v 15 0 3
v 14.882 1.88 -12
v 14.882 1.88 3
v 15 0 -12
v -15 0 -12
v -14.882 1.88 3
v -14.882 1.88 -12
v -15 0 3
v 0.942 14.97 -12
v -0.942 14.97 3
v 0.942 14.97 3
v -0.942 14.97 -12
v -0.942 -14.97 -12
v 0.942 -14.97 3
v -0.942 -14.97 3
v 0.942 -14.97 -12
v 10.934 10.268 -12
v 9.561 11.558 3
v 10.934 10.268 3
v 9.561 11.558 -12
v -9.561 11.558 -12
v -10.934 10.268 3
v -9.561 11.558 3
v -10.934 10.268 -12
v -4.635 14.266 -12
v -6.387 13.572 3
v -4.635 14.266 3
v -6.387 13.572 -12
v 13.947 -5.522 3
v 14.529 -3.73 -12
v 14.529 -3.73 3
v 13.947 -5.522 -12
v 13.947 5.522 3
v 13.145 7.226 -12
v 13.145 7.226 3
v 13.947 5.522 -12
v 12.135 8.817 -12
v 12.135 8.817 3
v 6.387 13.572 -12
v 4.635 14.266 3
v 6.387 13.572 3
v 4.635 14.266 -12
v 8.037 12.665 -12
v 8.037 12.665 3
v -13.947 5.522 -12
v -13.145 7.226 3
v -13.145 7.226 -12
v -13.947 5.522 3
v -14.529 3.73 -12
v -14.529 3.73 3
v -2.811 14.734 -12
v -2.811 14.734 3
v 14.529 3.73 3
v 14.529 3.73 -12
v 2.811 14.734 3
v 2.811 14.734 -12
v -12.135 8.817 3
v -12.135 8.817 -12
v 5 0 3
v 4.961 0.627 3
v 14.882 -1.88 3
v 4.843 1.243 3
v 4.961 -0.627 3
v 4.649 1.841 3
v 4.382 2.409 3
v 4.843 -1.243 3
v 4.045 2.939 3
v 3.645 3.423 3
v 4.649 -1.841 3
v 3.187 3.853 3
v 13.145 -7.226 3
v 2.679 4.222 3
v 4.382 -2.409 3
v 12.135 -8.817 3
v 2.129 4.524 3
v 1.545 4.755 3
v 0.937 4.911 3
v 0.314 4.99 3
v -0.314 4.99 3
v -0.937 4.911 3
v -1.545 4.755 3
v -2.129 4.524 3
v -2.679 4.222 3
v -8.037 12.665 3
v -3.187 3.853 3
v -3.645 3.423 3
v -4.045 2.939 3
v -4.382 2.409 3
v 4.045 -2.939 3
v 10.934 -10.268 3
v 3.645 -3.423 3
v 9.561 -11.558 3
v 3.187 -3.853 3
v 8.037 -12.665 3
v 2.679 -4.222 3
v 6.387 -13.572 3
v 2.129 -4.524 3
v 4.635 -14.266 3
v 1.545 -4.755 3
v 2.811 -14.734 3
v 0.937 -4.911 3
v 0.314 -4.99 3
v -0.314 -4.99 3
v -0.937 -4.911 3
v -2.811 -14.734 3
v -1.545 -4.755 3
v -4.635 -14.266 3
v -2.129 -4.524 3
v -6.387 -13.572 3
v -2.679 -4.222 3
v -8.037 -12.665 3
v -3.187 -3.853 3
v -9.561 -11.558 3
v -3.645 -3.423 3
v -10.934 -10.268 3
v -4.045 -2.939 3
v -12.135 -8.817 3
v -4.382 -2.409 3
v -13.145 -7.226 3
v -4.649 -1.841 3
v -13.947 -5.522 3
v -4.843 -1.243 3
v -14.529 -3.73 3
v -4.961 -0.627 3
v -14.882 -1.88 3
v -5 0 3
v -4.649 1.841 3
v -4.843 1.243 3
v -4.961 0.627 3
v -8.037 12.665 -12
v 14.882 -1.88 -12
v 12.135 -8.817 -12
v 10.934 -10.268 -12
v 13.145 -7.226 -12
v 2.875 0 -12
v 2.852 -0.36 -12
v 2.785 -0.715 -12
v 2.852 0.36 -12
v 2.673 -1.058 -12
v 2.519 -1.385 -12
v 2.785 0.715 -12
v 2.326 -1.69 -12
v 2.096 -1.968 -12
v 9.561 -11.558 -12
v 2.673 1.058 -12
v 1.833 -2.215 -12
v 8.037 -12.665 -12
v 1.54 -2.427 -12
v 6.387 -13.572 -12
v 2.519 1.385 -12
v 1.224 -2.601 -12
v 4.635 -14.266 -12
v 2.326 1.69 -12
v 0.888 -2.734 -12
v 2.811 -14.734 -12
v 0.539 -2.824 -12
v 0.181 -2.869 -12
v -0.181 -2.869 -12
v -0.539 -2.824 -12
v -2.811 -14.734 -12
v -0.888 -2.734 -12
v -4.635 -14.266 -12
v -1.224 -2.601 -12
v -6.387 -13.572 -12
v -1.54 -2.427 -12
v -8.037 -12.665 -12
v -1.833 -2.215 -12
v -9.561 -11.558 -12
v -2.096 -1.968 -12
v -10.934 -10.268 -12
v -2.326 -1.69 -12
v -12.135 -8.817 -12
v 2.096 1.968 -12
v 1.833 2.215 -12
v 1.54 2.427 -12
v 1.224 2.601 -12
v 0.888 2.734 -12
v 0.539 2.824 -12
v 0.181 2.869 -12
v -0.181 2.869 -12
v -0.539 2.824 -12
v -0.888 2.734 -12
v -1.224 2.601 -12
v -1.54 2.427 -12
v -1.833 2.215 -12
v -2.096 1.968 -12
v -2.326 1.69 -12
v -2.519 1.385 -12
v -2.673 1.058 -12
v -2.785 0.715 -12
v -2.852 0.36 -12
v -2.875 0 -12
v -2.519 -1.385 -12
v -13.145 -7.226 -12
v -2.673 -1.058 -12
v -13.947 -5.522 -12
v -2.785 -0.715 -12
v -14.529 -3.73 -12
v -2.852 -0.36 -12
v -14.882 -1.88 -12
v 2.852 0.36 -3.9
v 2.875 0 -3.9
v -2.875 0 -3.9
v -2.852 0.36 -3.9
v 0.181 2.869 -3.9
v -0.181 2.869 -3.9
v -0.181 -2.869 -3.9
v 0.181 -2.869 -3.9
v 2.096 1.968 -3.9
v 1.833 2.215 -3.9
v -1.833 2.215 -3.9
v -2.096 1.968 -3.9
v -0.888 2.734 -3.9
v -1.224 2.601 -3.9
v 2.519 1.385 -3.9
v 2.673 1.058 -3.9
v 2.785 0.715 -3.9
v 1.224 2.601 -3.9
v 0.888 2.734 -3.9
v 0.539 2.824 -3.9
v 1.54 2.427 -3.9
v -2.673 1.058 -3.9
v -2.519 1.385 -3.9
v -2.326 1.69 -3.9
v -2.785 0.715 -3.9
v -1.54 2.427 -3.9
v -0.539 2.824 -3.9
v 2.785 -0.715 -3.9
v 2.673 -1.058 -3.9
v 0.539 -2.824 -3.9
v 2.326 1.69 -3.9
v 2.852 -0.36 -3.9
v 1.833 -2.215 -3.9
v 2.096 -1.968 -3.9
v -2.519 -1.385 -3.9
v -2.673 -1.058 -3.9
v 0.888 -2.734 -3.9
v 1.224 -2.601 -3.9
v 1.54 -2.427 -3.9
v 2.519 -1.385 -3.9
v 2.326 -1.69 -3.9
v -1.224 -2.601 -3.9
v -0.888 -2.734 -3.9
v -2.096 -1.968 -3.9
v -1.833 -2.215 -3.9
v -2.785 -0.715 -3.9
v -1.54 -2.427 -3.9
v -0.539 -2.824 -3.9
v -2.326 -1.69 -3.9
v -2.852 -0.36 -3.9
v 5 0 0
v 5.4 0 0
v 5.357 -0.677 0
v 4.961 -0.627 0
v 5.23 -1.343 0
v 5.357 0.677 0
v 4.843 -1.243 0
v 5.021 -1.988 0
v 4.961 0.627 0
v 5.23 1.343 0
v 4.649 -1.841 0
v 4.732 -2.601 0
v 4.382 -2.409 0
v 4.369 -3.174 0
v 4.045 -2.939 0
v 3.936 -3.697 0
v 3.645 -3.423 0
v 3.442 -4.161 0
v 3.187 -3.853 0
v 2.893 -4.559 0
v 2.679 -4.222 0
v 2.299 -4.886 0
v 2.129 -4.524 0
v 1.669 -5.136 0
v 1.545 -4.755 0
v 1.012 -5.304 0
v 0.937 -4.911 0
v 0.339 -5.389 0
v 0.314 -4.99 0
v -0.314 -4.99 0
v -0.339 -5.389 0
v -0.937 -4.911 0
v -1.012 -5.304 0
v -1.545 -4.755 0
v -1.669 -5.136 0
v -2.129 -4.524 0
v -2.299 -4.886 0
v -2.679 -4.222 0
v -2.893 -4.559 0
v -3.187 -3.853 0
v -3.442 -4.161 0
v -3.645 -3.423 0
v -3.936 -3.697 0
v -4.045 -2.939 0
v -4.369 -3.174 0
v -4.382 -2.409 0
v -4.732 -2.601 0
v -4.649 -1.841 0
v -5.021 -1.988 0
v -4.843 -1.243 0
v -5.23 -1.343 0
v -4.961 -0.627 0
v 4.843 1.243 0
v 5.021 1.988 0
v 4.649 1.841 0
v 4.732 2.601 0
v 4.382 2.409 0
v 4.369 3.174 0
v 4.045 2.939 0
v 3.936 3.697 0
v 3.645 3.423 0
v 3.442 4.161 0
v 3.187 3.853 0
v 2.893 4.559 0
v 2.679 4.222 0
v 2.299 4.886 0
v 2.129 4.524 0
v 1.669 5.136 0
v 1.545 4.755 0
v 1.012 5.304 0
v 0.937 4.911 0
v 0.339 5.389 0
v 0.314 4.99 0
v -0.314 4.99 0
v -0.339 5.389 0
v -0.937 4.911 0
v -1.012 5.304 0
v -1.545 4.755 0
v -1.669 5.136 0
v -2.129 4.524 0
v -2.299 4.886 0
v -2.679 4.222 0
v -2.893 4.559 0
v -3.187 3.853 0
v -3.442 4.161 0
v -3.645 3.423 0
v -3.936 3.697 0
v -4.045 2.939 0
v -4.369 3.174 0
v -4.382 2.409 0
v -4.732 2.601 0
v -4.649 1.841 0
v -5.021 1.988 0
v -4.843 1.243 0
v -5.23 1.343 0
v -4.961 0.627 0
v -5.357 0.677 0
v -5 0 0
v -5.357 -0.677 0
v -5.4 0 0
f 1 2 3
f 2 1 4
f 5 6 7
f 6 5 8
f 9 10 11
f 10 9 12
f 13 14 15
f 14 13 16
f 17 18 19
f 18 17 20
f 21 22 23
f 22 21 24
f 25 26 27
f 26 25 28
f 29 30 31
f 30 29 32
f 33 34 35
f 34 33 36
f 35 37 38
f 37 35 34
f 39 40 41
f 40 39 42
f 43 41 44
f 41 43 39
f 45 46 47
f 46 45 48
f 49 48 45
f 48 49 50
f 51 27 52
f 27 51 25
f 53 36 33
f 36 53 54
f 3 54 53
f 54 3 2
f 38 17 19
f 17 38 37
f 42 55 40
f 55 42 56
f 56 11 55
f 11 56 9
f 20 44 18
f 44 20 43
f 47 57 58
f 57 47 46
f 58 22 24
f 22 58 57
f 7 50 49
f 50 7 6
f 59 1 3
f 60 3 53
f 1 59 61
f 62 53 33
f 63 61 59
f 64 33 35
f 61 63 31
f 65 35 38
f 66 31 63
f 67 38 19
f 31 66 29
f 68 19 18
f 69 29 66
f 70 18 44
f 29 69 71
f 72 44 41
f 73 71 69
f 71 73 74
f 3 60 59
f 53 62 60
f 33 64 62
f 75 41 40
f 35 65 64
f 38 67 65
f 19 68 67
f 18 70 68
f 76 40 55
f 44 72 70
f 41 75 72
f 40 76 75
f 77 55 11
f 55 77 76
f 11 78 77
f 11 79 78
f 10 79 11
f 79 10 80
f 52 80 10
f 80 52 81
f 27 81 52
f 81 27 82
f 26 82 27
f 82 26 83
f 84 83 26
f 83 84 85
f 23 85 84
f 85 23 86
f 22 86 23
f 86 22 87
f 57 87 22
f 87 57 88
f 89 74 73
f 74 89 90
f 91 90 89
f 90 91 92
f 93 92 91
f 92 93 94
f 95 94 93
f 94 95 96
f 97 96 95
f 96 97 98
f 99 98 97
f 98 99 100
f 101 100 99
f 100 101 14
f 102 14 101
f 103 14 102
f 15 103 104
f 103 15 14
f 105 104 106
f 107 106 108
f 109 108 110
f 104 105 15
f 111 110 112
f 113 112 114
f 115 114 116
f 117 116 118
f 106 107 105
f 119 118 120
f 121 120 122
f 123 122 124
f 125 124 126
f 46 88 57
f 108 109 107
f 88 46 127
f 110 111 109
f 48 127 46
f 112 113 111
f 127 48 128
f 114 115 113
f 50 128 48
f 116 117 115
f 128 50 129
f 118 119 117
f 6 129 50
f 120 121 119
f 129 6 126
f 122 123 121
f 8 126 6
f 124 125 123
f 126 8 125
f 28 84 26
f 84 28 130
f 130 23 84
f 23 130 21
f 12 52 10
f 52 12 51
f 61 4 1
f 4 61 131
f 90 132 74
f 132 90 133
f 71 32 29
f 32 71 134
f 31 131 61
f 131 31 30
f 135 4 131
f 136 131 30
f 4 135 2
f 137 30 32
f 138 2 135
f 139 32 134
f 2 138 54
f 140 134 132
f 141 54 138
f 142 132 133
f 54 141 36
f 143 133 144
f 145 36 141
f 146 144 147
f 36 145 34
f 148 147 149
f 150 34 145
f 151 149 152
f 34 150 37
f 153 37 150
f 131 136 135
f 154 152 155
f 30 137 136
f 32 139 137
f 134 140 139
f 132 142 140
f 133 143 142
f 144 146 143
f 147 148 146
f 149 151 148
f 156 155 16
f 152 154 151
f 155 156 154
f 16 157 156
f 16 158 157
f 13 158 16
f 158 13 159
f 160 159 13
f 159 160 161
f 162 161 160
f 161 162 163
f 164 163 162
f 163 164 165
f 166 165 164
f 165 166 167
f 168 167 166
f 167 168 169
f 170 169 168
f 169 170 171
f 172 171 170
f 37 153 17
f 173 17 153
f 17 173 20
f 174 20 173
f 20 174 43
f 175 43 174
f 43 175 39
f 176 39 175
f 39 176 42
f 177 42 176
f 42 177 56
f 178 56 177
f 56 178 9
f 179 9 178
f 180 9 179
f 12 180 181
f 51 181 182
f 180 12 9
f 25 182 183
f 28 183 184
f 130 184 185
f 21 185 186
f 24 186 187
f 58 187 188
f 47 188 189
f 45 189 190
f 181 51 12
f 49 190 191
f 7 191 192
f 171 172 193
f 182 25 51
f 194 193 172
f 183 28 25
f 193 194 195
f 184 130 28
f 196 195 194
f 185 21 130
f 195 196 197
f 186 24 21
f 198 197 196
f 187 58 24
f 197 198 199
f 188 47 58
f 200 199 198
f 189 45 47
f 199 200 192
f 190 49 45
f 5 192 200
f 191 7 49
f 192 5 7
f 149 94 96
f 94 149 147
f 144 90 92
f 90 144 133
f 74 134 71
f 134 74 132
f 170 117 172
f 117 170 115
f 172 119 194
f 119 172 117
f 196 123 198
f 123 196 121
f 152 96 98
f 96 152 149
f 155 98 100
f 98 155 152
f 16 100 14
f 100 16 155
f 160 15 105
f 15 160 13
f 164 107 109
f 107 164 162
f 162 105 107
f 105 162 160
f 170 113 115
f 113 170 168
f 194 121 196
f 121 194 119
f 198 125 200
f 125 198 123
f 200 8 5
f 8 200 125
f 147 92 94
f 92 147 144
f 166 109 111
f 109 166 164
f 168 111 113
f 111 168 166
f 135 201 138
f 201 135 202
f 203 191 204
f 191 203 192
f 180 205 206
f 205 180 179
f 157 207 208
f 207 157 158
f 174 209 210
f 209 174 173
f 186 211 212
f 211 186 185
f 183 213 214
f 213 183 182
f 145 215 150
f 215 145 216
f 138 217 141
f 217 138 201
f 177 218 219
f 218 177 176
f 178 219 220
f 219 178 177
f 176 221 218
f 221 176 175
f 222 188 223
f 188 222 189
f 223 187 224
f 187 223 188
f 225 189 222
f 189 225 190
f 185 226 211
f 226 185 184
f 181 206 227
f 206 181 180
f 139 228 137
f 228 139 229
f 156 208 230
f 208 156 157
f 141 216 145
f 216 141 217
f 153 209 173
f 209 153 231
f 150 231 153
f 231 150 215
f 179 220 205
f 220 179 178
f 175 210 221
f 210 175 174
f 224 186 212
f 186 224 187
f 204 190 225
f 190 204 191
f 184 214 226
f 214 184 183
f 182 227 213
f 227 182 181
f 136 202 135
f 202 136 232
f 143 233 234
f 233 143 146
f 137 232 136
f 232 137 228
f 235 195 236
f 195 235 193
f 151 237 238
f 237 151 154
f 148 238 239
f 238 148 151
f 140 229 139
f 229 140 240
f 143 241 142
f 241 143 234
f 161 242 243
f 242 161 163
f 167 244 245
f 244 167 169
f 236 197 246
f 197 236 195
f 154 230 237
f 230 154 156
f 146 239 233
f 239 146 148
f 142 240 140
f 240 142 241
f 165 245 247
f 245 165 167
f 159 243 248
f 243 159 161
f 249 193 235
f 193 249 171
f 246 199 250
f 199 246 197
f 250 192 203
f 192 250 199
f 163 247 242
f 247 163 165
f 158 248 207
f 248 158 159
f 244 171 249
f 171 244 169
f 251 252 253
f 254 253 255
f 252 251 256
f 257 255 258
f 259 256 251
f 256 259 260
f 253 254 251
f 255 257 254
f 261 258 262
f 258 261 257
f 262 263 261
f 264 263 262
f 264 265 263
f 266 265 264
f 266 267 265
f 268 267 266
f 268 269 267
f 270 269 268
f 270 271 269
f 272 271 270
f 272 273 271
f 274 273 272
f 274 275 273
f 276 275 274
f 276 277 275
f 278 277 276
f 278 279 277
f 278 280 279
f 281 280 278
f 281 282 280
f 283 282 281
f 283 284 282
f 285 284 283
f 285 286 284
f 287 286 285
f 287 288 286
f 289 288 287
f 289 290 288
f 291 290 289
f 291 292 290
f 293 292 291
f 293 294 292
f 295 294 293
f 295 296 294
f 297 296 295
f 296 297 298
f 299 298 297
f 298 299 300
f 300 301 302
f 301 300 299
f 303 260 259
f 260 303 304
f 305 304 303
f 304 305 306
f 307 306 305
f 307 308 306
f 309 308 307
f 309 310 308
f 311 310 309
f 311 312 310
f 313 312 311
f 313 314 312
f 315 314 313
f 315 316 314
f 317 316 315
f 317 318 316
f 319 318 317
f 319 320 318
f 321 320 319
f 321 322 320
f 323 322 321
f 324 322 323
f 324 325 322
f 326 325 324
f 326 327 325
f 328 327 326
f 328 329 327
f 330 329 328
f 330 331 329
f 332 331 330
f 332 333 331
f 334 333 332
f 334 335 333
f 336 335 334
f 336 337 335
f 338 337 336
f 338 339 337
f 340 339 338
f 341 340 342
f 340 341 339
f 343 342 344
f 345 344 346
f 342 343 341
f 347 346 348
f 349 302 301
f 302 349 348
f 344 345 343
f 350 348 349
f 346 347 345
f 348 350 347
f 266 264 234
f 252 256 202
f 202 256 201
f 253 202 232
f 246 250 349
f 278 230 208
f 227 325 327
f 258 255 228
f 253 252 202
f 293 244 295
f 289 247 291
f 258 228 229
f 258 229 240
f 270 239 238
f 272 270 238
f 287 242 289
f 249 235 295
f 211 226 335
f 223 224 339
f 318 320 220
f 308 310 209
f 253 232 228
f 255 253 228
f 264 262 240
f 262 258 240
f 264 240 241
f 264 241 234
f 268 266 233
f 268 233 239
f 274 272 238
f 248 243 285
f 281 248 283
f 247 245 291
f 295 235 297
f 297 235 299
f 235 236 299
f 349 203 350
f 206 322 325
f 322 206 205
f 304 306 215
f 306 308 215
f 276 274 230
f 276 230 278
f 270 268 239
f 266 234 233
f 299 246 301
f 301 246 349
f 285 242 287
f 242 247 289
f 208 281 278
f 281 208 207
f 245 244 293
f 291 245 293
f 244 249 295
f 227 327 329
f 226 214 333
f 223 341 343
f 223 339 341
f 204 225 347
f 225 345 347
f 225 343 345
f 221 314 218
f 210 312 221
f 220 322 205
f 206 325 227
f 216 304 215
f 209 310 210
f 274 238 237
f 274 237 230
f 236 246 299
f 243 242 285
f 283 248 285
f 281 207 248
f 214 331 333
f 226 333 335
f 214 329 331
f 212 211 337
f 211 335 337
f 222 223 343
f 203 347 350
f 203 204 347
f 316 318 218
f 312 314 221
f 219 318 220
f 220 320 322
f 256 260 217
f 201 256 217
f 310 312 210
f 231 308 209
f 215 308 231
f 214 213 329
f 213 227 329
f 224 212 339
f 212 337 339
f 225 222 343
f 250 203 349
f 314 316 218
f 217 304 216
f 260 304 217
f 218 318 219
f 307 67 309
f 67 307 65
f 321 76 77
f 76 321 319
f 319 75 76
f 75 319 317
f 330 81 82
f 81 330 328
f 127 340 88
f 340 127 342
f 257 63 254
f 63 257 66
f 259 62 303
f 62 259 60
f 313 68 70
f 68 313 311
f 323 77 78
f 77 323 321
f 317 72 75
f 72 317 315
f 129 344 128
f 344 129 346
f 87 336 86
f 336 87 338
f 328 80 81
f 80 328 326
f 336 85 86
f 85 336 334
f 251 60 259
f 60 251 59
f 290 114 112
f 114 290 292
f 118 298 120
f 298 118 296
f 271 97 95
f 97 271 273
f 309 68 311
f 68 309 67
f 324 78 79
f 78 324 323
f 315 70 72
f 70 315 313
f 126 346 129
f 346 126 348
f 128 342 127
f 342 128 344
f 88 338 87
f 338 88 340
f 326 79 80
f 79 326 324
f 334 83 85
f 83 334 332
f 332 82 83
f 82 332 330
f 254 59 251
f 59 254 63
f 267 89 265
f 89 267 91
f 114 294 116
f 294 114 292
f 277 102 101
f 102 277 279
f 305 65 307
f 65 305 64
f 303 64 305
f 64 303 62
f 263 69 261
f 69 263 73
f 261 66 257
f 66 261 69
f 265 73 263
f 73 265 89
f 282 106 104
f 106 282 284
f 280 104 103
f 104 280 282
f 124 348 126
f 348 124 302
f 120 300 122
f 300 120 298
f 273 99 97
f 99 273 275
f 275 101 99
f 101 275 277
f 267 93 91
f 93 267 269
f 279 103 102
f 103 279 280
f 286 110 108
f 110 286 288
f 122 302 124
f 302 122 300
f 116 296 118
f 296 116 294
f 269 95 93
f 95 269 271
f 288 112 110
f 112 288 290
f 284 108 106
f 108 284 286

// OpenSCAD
$fn = 50;


difference() {
	union() {
		translate(v = [0, 0, -12.0000000000]) {
			cylinder(h = 15, r = 15.0000000000);
		}
		#translate(v = [0, 0, -15.0000000000]) {
			cylinder(h = 15, r = 2.8750000000);
		}
	}
	union() {
		translate(v = [0, 0, 0]) {
			rotate(a = [0, 0, 0]) {
				difference() {
					union() {
						translate(v = [0, 0, -15.0000000000]) {
							cylinder(h = 15, r = 2.6000000000);
						}
						translate(v = [0, 0, -3.9000000000]) {
							cylinder(h = 3.9000000000, r1 = 2.8750000000, r2 = 5.4000000000);
						}
						translate(v = [0, 0, -15.0000000000]) {
							cylinder(h = 15, r = 2.8750000000);
						}
						translate(v = [0, 0, -15.0000000000]) {
							cylinder(h = 15, r = 2.6000000000);
						}
					}
					union();
				}
			}
		}
		#cylinder(h = 3, r = 5.0000000000);
	}
}
